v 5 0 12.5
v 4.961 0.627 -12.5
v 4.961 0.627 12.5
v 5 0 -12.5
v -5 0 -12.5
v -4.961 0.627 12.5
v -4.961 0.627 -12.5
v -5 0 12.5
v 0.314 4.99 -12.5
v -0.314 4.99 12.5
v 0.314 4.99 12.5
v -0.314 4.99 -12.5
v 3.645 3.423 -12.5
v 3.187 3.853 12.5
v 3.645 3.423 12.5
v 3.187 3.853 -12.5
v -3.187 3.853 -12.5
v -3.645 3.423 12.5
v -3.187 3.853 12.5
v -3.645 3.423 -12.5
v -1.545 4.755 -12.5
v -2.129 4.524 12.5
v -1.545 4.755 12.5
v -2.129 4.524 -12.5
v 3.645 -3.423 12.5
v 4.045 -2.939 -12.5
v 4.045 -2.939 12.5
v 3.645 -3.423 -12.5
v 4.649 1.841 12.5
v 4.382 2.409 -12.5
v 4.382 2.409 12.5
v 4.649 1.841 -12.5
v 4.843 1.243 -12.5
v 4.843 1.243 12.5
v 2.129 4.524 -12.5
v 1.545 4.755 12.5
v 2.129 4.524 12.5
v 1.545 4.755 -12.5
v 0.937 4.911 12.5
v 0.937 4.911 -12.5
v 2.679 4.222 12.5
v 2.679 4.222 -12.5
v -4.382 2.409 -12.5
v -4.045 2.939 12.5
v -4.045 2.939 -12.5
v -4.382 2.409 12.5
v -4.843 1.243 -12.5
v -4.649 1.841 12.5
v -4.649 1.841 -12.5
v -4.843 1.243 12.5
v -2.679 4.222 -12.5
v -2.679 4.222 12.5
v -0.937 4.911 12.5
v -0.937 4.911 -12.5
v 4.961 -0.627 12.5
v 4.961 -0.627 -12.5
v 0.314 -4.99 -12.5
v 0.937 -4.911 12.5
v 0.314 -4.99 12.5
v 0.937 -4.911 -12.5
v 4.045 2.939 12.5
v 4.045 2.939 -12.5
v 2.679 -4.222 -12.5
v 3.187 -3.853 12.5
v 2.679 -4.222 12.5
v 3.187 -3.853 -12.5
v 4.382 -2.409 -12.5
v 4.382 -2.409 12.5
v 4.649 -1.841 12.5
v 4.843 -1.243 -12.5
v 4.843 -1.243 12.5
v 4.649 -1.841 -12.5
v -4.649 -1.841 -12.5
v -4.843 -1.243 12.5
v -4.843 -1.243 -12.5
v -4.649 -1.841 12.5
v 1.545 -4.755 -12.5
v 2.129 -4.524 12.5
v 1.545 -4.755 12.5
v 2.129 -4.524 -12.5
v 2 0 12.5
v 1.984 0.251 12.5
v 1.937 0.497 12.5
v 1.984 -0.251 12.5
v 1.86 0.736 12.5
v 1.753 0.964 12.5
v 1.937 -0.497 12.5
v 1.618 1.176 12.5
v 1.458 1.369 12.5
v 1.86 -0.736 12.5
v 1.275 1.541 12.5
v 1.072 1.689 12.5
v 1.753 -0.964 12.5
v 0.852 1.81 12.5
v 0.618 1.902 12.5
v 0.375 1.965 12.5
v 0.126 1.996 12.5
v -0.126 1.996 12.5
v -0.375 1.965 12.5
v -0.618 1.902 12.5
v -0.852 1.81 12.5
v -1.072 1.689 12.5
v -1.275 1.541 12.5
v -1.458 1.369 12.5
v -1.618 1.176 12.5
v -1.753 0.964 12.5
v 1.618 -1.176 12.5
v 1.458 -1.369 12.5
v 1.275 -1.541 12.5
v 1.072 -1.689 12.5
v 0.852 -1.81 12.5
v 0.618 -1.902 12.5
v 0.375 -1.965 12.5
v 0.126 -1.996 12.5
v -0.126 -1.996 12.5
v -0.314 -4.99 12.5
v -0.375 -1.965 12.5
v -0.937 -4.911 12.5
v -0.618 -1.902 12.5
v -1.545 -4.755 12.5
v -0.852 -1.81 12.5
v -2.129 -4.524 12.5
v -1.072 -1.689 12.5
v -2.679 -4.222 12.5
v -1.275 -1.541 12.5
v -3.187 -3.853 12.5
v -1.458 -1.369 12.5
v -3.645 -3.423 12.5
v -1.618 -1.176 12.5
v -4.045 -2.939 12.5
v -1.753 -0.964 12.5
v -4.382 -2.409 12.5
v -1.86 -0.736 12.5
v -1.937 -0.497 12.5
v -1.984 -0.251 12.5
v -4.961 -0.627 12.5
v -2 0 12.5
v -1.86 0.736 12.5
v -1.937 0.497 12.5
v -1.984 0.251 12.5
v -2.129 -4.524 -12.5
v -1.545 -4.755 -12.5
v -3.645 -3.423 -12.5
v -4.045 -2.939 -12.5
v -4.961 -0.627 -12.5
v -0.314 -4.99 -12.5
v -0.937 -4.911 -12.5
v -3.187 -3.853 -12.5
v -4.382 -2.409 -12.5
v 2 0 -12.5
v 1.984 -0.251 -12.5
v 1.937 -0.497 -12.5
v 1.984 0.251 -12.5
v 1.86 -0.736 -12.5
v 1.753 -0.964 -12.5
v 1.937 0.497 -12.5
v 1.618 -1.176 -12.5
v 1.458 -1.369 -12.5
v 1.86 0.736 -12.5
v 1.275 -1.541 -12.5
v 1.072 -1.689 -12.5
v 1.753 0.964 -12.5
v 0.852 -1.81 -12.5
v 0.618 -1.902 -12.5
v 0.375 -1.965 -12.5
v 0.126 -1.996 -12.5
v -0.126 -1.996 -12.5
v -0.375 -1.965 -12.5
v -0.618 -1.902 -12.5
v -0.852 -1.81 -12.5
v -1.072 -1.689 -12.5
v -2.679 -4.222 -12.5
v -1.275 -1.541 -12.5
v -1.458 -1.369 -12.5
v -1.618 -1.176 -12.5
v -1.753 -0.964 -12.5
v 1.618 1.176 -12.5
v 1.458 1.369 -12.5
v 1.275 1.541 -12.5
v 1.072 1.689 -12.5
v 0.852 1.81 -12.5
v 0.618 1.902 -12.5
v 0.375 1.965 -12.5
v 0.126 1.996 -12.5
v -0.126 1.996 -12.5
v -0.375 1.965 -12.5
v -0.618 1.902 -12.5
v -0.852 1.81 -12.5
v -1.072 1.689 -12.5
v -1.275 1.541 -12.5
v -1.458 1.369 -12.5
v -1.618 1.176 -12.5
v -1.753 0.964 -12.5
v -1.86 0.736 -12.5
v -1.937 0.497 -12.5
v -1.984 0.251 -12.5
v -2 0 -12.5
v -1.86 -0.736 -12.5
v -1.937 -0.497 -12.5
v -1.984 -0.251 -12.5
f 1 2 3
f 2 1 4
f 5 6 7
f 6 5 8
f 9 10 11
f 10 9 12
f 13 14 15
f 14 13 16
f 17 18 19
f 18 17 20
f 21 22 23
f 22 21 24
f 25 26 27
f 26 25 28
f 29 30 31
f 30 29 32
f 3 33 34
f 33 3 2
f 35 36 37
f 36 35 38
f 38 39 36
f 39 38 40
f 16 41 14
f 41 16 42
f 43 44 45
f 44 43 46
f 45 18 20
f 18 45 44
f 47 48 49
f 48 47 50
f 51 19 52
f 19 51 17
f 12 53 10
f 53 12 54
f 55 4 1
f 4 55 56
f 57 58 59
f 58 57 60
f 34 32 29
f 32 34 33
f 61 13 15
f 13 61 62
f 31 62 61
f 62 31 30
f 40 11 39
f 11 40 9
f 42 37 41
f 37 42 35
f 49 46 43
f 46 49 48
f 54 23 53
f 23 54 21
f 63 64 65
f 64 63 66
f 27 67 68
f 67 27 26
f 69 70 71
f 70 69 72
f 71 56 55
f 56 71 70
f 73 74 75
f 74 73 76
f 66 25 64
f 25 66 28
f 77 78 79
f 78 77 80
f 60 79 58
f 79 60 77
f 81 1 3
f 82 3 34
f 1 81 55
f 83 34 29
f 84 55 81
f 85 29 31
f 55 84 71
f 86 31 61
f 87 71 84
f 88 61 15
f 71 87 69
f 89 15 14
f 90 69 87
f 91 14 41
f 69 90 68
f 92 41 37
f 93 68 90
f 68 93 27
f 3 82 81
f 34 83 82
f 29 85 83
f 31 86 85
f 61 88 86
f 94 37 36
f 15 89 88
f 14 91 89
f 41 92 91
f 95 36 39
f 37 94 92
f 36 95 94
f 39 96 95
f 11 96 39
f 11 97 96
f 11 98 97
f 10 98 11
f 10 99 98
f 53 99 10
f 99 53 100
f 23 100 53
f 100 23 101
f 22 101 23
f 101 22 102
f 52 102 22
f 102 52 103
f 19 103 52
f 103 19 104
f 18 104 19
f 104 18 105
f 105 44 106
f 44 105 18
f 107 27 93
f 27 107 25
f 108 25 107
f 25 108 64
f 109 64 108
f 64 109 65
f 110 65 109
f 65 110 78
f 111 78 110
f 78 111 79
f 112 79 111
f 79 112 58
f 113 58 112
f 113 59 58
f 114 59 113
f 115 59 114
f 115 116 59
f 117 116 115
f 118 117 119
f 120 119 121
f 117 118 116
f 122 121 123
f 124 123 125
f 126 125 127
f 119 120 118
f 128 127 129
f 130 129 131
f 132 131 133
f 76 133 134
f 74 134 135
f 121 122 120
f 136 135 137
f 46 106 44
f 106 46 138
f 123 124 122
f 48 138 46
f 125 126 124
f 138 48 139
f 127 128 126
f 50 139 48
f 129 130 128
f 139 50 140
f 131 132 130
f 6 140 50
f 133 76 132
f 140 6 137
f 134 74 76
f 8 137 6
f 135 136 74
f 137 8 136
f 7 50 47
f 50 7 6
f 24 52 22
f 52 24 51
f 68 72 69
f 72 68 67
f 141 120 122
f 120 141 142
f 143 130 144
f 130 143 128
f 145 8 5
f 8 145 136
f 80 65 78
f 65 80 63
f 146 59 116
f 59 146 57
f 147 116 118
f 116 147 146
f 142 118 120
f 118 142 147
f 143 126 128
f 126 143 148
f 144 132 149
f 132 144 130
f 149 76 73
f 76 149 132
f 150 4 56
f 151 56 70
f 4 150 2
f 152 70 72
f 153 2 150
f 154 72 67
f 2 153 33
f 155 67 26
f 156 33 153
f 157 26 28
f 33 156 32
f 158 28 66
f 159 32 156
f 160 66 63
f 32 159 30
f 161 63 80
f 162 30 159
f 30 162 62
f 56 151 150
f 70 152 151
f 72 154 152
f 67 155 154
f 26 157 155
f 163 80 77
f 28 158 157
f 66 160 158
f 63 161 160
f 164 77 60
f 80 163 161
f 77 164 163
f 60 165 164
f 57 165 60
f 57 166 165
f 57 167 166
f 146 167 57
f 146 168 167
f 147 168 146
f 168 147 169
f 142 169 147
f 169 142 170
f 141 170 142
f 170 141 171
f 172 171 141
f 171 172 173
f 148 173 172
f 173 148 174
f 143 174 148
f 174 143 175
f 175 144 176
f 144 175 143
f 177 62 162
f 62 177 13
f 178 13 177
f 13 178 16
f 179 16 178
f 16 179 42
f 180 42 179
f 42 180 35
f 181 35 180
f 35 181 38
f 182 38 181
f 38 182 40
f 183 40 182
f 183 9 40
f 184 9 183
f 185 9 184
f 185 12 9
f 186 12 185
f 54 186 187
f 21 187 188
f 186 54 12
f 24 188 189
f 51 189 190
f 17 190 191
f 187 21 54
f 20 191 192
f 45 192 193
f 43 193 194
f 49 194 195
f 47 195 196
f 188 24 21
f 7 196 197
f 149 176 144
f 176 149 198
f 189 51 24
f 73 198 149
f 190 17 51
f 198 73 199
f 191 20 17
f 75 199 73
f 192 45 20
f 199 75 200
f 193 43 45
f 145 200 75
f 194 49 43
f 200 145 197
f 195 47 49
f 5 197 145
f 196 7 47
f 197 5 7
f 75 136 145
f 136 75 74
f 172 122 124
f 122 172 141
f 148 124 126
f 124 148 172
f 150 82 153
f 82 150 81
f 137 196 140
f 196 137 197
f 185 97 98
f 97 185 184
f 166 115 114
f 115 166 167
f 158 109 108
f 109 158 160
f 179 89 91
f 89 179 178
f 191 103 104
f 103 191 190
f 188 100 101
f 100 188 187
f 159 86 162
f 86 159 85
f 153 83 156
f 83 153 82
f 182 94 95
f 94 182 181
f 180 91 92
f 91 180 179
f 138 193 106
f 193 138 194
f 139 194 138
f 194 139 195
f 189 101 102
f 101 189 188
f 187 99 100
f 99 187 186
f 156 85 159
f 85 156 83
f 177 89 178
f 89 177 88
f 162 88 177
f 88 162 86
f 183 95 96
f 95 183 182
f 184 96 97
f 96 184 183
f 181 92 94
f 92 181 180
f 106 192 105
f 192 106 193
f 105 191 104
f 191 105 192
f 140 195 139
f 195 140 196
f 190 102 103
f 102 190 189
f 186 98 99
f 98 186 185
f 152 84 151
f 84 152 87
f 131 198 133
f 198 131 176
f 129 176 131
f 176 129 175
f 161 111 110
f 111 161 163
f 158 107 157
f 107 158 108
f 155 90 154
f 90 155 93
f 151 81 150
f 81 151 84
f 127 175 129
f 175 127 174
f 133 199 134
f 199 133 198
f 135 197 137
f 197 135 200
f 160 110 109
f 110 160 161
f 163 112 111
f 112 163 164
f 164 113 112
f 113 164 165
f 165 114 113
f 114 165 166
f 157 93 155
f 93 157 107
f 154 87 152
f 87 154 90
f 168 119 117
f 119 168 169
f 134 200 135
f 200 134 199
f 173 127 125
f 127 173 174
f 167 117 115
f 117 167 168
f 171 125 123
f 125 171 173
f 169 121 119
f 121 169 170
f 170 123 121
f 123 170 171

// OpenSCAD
$fn = 50;


difference() {
	union() {
		translate(v = [0, 0, -12.5000000000]) {
			cylinder(h = 25, r = 5.0000000000);
		}
	}
	union() {
		translate(v = [0, 0, -100.0000000000]) {
			cylinder(h = 200, r = 2.0000000000);
		}
	}
}
